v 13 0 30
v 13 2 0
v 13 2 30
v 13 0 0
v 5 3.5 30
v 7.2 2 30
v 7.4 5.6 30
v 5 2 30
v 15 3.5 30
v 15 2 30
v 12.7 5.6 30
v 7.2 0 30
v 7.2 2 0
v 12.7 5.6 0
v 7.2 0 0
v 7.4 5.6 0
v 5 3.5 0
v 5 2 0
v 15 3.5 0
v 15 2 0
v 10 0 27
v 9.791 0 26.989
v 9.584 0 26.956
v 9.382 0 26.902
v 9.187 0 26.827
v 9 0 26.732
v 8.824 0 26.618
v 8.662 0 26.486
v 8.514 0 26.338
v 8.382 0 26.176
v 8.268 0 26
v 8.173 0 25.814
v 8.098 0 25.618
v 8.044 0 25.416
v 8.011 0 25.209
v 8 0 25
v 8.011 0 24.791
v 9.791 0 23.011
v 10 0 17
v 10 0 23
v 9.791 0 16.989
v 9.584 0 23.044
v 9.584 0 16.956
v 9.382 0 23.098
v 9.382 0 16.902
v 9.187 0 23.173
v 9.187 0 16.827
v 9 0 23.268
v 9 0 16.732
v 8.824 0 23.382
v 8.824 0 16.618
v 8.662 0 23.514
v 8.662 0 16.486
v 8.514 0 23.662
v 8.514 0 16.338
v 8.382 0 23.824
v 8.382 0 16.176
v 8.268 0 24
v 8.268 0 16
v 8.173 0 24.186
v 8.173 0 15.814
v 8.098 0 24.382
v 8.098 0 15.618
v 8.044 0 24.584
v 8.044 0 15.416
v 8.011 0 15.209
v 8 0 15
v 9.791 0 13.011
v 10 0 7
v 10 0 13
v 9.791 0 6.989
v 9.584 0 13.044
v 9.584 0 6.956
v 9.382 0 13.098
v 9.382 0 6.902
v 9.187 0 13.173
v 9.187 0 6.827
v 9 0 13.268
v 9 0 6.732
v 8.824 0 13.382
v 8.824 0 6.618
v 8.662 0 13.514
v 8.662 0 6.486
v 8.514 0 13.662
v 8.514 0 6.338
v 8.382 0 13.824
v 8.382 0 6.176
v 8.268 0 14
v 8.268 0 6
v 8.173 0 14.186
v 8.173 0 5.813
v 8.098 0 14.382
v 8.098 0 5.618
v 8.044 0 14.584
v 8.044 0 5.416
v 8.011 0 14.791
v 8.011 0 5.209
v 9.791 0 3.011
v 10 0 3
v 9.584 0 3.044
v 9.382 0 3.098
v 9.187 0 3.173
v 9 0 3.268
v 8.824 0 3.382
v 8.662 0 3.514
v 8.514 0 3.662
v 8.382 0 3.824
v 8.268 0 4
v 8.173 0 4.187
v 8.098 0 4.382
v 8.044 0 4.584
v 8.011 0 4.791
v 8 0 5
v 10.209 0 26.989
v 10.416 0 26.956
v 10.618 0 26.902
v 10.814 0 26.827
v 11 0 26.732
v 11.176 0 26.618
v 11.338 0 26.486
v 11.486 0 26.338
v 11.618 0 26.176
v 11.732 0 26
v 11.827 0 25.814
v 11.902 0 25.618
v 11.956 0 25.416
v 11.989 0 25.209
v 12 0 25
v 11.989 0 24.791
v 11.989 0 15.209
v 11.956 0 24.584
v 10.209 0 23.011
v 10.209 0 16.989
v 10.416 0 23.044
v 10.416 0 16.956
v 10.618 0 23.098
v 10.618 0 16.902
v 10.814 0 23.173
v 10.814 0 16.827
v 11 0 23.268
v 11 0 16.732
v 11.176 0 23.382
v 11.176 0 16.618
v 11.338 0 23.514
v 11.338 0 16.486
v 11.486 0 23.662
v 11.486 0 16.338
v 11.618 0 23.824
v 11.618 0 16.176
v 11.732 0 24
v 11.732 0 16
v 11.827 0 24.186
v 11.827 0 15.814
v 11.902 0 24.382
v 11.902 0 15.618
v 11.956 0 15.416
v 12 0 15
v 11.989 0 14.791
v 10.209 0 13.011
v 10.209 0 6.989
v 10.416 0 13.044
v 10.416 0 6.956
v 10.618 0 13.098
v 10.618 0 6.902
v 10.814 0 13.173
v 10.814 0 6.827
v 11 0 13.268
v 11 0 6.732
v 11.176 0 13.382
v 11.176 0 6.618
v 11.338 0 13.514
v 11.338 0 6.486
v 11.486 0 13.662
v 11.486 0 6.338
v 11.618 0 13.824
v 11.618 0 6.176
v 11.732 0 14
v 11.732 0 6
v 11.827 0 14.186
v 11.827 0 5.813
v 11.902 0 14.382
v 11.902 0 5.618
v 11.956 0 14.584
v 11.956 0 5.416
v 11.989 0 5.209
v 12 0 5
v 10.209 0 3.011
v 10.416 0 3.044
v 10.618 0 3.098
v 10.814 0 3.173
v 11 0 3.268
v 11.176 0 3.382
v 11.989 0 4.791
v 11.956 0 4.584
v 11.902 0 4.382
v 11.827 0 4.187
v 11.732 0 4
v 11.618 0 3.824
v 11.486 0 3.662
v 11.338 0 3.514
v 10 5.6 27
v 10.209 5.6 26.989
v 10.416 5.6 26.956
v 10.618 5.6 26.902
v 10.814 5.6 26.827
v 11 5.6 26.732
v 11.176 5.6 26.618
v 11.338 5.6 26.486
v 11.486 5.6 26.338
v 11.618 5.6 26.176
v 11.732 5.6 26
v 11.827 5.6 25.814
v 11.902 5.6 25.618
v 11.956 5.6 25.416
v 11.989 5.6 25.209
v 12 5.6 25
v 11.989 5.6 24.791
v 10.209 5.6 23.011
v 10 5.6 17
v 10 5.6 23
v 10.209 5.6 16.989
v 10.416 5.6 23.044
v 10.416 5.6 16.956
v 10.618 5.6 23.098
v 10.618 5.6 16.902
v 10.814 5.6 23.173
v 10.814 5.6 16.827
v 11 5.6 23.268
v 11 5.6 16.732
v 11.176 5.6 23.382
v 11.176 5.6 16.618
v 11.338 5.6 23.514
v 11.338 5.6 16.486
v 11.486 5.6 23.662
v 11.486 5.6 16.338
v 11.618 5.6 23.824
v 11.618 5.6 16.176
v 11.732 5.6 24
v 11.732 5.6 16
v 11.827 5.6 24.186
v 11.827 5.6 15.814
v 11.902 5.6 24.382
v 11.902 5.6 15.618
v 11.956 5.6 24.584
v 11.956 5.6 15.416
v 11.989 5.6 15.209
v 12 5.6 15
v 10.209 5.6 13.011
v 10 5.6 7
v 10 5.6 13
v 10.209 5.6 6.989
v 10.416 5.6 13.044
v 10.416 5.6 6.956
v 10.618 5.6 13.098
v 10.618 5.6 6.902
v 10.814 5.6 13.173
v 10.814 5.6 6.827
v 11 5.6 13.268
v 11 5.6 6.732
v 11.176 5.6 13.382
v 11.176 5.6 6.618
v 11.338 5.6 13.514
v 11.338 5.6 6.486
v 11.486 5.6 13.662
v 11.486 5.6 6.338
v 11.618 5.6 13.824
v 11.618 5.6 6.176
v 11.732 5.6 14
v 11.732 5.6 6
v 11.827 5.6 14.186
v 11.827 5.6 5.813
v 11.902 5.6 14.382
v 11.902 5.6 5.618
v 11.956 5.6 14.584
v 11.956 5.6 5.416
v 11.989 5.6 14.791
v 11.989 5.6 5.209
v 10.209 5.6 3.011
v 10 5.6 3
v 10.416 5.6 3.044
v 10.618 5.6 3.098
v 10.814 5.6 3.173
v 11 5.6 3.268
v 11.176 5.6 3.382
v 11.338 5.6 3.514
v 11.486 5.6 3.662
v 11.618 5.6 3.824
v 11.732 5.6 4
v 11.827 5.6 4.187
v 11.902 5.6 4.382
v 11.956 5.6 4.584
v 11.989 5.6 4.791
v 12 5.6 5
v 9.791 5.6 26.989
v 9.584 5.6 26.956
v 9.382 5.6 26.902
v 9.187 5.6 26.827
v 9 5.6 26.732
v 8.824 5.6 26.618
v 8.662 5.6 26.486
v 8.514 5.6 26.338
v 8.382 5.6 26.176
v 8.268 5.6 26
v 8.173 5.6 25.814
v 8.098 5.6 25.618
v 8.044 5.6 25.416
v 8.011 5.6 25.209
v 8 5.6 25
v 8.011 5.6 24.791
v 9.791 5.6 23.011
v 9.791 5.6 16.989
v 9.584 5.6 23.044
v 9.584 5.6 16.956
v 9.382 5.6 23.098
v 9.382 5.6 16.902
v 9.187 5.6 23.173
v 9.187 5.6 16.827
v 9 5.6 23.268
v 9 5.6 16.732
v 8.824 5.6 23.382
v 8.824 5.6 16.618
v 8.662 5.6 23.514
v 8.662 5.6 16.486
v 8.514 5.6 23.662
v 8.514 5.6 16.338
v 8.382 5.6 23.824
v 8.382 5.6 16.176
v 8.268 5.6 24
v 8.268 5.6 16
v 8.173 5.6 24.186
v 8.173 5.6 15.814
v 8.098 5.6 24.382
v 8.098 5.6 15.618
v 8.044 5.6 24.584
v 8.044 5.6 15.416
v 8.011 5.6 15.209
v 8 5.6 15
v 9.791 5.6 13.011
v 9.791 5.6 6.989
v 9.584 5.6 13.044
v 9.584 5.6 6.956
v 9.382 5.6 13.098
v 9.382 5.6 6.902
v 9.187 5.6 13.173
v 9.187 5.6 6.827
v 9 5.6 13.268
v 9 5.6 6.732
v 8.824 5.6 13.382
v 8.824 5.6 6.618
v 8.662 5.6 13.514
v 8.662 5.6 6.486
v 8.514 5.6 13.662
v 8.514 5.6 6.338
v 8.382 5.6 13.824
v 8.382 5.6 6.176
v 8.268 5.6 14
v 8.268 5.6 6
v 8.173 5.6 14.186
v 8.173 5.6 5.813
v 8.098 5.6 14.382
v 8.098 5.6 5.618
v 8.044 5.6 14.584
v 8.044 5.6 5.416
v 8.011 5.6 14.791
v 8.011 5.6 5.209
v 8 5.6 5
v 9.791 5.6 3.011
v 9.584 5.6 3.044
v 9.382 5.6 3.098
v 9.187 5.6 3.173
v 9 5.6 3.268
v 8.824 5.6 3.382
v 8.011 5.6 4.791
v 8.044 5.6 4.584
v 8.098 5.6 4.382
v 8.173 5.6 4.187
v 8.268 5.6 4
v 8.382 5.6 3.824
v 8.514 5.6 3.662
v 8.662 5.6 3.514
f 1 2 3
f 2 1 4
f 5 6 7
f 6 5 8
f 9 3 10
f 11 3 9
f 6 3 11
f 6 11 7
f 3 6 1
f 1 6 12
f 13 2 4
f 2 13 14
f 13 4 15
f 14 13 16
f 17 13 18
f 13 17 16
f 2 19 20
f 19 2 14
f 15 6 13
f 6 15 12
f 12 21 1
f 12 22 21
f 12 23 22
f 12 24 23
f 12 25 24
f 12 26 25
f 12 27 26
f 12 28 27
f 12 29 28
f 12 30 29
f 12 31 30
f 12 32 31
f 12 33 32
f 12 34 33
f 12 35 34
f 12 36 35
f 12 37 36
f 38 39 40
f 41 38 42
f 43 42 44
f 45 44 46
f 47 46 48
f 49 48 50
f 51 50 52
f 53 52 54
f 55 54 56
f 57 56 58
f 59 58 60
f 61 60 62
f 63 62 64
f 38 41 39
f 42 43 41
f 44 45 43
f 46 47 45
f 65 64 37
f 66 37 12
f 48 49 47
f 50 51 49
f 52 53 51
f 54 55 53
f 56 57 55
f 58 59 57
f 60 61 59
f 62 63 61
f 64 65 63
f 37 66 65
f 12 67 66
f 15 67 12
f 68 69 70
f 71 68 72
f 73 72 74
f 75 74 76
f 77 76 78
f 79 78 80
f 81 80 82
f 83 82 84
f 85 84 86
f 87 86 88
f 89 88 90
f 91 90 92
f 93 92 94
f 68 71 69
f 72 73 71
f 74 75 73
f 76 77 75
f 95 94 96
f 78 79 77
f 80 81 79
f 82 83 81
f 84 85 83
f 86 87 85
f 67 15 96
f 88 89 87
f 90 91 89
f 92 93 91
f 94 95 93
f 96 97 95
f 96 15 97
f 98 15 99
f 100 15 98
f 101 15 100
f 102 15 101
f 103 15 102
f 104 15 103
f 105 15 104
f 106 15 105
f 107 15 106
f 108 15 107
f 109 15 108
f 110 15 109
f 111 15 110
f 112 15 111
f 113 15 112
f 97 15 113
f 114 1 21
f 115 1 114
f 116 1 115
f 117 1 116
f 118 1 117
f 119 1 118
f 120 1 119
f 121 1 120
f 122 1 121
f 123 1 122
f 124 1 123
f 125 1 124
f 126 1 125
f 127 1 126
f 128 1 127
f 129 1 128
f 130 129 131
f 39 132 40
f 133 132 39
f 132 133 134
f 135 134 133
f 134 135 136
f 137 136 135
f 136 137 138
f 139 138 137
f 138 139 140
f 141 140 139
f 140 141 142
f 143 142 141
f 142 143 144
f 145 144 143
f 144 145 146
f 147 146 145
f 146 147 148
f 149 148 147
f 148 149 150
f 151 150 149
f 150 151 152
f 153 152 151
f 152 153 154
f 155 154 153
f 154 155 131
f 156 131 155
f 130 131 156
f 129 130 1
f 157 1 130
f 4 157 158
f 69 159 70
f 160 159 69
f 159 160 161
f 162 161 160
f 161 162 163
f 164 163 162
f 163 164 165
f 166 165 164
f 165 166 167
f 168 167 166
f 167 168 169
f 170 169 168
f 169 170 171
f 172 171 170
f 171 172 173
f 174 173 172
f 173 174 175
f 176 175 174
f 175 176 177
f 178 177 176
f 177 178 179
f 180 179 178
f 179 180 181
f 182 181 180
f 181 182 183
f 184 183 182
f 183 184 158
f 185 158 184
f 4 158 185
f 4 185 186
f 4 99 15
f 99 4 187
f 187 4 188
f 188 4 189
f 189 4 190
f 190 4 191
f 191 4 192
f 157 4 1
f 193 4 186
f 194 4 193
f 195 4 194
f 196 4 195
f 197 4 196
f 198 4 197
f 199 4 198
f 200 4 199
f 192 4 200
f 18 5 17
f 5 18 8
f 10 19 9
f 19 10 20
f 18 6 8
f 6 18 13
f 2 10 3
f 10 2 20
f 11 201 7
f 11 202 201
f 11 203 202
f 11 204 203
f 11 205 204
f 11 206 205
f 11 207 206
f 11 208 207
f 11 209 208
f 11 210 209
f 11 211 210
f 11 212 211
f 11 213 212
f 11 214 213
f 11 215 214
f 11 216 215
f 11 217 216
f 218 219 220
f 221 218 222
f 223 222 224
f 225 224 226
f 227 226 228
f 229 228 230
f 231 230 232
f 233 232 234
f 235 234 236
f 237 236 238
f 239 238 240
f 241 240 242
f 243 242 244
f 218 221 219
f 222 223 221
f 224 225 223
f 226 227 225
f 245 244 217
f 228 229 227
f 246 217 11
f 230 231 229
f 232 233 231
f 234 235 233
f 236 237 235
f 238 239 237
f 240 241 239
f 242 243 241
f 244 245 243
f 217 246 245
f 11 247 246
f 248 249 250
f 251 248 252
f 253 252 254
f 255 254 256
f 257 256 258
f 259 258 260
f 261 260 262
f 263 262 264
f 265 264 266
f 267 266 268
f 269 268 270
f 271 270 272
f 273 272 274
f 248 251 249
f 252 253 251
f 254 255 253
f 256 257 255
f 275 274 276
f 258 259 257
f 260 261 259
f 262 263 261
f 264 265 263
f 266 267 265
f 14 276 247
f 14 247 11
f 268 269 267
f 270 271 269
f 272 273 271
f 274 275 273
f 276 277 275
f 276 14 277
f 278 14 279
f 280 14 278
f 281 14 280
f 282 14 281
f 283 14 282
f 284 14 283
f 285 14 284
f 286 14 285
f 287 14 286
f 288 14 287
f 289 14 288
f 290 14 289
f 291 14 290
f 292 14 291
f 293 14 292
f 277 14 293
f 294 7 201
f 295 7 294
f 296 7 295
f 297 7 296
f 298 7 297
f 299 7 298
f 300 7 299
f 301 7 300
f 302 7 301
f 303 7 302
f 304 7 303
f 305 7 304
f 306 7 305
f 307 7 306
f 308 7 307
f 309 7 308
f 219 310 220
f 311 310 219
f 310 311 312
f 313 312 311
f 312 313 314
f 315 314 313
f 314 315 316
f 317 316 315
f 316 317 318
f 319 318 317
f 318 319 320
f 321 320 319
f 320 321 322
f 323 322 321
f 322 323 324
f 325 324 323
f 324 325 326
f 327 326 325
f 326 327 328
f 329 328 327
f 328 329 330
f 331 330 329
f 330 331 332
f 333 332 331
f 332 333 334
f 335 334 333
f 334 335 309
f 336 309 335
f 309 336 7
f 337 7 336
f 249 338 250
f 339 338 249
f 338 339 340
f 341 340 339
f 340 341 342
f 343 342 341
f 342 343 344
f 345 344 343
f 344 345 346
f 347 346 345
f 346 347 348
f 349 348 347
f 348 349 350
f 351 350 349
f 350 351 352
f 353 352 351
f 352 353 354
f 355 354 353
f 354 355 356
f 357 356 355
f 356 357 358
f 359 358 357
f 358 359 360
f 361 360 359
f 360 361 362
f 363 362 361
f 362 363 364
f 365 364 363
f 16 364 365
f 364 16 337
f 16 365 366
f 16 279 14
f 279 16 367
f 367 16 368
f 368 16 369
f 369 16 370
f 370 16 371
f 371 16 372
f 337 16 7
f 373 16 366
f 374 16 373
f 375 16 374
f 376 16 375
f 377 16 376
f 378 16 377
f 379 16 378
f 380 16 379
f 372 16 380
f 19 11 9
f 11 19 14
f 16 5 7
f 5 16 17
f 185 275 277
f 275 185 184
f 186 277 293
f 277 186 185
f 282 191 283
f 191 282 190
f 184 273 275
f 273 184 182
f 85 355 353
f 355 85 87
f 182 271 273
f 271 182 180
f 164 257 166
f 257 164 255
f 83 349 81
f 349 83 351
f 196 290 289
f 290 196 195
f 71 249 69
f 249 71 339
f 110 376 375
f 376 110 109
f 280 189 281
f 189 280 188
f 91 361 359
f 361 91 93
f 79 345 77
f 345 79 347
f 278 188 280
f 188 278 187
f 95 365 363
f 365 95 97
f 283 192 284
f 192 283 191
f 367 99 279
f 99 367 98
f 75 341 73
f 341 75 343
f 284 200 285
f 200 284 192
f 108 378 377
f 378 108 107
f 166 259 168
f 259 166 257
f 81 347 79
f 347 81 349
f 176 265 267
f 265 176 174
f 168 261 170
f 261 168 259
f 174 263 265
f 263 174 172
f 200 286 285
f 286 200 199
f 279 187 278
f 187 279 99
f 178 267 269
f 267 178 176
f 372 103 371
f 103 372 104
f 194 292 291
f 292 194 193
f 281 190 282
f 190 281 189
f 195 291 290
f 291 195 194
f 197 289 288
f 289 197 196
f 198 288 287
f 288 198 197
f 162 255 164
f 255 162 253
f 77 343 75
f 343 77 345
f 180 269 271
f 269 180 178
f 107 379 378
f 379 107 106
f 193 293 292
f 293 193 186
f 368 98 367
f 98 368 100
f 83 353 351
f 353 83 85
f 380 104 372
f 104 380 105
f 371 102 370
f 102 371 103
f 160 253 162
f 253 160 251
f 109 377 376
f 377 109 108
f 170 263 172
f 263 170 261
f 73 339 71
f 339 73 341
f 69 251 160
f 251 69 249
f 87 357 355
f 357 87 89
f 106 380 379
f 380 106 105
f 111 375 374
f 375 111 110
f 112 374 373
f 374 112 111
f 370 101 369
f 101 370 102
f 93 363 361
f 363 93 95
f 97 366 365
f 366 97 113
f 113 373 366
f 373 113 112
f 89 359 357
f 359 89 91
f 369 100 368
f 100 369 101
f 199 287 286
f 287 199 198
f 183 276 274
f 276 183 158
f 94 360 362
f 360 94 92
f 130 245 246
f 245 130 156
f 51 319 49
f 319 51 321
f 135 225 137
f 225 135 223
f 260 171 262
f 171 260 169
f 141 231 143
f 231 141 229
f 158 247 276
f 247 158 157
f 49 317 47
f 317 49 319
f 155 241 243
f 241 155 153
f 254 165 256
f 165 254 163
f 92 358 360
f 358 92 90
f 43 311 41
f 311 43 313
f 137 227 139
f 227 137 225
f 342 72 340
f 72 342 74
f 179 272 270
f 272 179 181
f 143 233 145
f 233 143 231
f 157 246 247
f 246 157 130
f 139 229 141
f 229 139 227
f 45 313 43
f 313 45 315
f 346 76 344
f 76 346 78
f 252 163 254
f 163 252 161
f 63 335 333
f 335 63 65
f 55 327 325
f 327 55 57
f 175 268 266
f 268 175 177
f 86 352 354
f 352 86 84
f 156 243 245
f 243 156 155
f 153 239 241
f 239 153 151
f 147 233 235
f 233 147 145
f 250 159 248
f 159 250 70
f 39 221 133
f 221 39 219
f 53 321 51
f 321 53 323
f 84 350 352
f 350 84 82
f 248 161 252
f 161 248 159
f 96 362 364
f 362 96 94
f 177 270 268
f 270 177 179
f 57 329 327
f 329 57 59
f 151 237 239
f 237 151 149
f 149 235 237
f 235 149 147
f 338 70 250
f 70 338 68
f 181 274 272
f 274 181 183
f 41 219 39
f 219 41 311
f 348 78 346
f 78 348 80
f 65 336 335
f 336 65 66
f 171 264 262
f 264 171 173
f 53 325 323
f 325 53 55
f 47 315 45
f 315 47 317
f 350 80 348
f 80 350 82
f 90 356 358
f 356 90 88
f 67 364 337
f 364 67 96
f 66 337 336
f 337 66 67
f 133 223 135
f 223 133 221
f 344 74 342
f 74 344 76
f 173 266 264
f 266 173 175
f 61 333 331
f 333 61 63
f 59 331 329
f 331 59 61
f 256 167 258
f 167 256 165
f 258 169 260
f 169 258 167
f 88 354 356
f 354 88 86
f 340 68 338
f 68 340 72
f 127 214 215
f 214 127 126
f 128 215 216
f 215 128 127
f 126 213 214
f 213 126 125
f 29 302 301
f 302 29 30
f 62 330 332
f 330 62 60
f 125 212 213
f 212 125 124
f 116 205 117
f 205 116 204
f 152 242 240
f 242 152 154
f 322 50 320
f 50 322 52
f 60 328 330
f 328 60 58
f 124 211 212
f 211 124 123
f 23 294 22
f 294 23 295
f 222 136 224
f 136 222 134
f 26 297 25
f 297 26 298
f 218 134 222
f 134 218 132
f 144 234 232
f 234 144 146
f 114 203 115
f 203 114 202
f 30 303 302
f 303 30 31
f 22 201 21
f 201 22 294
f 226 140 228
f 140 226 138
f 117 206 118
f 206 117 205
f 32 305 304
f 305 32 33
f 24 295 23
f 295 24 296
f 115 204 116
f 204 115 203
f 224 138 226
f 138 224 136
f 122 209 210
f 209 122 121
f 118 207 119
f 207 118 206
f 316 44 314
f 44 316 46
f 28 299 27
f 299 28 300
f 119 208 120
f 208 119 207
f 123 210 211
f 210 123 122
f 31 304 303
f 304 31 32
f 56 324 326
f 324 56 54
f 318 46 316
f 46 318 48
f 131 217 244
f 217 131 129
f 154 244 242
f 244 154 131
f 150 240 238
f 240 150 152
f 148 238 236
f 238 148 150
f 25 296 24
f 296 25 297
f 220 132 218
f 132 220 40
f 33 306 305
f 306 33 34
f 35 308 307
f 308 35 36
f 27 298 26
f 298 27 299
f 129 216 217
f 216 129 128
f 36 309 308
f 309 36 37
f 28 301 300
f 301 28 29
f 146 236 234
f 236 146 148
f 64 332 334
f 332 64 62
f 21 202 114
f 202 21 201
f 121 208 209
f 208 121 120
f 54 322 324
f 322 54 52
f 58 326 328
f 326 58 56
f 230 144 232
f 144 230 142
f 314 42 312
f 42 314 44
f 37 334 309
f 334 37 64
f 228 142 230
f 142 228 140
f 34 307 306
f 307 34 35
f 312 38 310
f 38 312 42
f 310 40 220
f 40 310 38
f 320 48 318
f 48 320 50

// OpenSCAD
echo(version=version());
//include <threads.scad>


// Base Config
base_W = 120; // Min Size < 10
base_H = 40; // Min Size < 40
base_T = 0.5; // Fix Size = 0.5 for Stapler
default_S = 12; // Fix Size = 12 for Stapler (Stapler size)
default_T = 3.0; // Fix Size = 2.0 for Stapler (base_T < default_T)
$fn = 60;
minkowski_R = 2;
outR=14;
pitchN=4;
interR=9;
bladehuckR=0;

// * difference(){
//     import("2020 alu section.STL", convexity=3);
//     translate([-5, -5, 10]) cube([30, 30, 500]);
// }

difference(){
    union() {
        translate([7.2, 0, 0]) cube([5.8, 3, 30]);
        hull() {
            translate([5, 2, 0]) cube([10, 1.5, 30]);
            translate([7.4, 5.5, 0]) cube([5.3, 0.1, 30]);
        }
    }
    translate([10, 8, 5]) rotate([90, 0, 0]) cylinder(h=10, r=2, center=false);
    translate([10, 8, 15]) rotate([90, 0, 0]) cylinder(h=10, r=2, center=false);
    translate([10, 8, 25]) rotate([90, 0, 0]) cylinder(h=10, r=2, center=false);
    // *translate([87.5, 60, -19]) rotate([0, 0, 180]) import("M3x15x0.5 Philips Pan Head Screw.stl", convexity=3);
    // *translate([87.5, 60, -9]) rotate([0, 0, 180]) import("M3x15x0.5 Philips Pan Head Screw.stl", convexity=3);
    // *translate([87.5, 60, 1]) rotate([0, 0, 180]) import("M3x15x0.5 Philips Pan Head Screw.stl", convexity=3);
}

// translate([2, 2, 2]) {
//     // main body
//     *union() {
//         difference(){
//             union() {
//                 intersection() {
//                     union() {
//                             translate([0, 30.25, -7.75]) cube([18.75, 4.75, 17.75]);
//                             translate([0, 8, -7.75]) cube([8.5, 23, 7.5]);
//                             translate([10.25, 8, 2.5]) cube([8.5, 23, 7.5]);
//                     }
//                     translate([9.5, 36, 1.25]) rotate([90, 0, 0]) cylinder(h=30, r=interR, center=false);
//                 }
//                 // body screw
//                 translate([9.5, 35, 1.25]) rotate([90, 0, 0]) metric_thread (diameter=23, pitch=pitchN, length=13);
//             }
//             translate([-9.7, 8, -0.3]) cube([20, 22, 20]);
//             translate([8.5, 8, -17.5]) cube([20, 22, 20]);
//         }
//         // body
//         difference(){
//                 translate([9.5, 65, 1.25]) rotate([90, 0, 0]) cylinder(h=33, r=outR, center=false);
//                 translate([9.5, 65, 1.25]) rotate([90, 0, 0]) metric_thread (diameter=24, pitch=pitchN, length=10, internal=true);
//                 translate([9.5, 65, 1.25]) rotate([90, 0, 0]) cylinder(h=29, r=10.5, center=false);
//         }
//         // body plate
//         translate([-2.5, 33, 0]) cube([24, 21.8, 2]);
//         // suport parts
//         * translate([-0.5, 54.8, 1]) {
//             hull() {
//                 translate([0, 5.2, 1]) cube([20, 5, 0.1]);
//                 translate([0, 0, 0]) cube([20, 10.2, 0.1]);
//                 translate([0, 5.2, -1]) cube([20, 5, 0.1]);
//             }
//         }
//     }
//     // blade holder
//     *difference(){
//         union() {
//             intersection() {
//                 union() {
//                     union() {
//                         translate([0, 8, 0]) difference(){
//                             cube([10, 22, 10]);
//                             translate([8.8, 0, 0]) cube([5, 11.5, 11]);
//                             translate([0, 0, 0]) cube([11, 11.5, 1.2]);
//                         }
//                         translate([5, 11, 5.5]) rotate([0, 90, 0]) cylinder(h=5, r=1.4, center=false, $fn=20);
//                         translate([4.5, 11, 0]) rotate([0, 0, 0]) cylinder(h=5, r=1.4, center=false, $fn=20);
//                     }
//                     translate([8.7, 0, -7.7]) rotate([0, 90, 0]) mirror([1,0,0]) union() {
//                         translate([0, 8, 0]) difference(){
//                             cube([10, 22, 10]);
//                             translate([8.8, 0, 0]) cube([5, 11.5, 11]);
//                             translate([0, 0, 0]) cube([11, 11.5, 1.2]);
//                         }
//                         translate([5, 11, 5.5]) rotate([0, 90, 0]) cylinder(h=5, r=1.4, center=false, $fn=20);
//                         translate([4.5, 11, 0]) rotate([0, 0, 0]) cylinder(h=5, r=1.4, center=false, $fn=20);
//                     }
//                 }
//                 translate([9.5, 36, 1.25]) rotate([90, 0, 0]) cylinder(h=30, r=interR, center=false);
//             }
//             // body screw
//             translate([9.5, 35, 1.25]) rotate([90, 0, 0]) metric_thread (diameter=23, pitch=pitchN, length=13);
//         }
//         translate([10, 8, 2.3]) cube([20, 22, 20]);
//         translate([-11.2, 8, -20]) cube([20, 22, 20]);
//         translate([-5, 30, -15]) cube([30, 10, 30]);
//     }

//     // cap
//     *union() {
//         translate([9.5, 85, 1.25]) rotate([90, 0, 0]) cylinder(h=8, r=outR, center=false);
//         translate([9.5, 80, 1.25]) rotate([90, 0, 0]) metric_thread (diameter=23, pitch=pitchN, length=9.5);
//     }

//     // main cap
//     *difference(){
//         translate([9.5, 0, 1.25]) rotate([90, 0, 0]) cylinder(h=43, r=outR, center=false);
//         translate([9.5, 5, 1.25]) rotate([90, 0, 0]) metric_thread (diameter=24, pitch=pitchN, length=45, internal=true);
//     }

//     // stopper ring
//     *difference(){
//         translate([9.5, 0, 1.25]) rotate([90, 0, 0]) cylinder(h=43, r=outR, center=false);
//         translate([9.5, 5, 1.25]) rotate([90, 0, 0]) metric_thread (diameter=24.3, pitch=pitchN, length=45, internal=true);
//         translate([-10, -45, -20]) cube([40, 40, 40]);
//     }



// }
